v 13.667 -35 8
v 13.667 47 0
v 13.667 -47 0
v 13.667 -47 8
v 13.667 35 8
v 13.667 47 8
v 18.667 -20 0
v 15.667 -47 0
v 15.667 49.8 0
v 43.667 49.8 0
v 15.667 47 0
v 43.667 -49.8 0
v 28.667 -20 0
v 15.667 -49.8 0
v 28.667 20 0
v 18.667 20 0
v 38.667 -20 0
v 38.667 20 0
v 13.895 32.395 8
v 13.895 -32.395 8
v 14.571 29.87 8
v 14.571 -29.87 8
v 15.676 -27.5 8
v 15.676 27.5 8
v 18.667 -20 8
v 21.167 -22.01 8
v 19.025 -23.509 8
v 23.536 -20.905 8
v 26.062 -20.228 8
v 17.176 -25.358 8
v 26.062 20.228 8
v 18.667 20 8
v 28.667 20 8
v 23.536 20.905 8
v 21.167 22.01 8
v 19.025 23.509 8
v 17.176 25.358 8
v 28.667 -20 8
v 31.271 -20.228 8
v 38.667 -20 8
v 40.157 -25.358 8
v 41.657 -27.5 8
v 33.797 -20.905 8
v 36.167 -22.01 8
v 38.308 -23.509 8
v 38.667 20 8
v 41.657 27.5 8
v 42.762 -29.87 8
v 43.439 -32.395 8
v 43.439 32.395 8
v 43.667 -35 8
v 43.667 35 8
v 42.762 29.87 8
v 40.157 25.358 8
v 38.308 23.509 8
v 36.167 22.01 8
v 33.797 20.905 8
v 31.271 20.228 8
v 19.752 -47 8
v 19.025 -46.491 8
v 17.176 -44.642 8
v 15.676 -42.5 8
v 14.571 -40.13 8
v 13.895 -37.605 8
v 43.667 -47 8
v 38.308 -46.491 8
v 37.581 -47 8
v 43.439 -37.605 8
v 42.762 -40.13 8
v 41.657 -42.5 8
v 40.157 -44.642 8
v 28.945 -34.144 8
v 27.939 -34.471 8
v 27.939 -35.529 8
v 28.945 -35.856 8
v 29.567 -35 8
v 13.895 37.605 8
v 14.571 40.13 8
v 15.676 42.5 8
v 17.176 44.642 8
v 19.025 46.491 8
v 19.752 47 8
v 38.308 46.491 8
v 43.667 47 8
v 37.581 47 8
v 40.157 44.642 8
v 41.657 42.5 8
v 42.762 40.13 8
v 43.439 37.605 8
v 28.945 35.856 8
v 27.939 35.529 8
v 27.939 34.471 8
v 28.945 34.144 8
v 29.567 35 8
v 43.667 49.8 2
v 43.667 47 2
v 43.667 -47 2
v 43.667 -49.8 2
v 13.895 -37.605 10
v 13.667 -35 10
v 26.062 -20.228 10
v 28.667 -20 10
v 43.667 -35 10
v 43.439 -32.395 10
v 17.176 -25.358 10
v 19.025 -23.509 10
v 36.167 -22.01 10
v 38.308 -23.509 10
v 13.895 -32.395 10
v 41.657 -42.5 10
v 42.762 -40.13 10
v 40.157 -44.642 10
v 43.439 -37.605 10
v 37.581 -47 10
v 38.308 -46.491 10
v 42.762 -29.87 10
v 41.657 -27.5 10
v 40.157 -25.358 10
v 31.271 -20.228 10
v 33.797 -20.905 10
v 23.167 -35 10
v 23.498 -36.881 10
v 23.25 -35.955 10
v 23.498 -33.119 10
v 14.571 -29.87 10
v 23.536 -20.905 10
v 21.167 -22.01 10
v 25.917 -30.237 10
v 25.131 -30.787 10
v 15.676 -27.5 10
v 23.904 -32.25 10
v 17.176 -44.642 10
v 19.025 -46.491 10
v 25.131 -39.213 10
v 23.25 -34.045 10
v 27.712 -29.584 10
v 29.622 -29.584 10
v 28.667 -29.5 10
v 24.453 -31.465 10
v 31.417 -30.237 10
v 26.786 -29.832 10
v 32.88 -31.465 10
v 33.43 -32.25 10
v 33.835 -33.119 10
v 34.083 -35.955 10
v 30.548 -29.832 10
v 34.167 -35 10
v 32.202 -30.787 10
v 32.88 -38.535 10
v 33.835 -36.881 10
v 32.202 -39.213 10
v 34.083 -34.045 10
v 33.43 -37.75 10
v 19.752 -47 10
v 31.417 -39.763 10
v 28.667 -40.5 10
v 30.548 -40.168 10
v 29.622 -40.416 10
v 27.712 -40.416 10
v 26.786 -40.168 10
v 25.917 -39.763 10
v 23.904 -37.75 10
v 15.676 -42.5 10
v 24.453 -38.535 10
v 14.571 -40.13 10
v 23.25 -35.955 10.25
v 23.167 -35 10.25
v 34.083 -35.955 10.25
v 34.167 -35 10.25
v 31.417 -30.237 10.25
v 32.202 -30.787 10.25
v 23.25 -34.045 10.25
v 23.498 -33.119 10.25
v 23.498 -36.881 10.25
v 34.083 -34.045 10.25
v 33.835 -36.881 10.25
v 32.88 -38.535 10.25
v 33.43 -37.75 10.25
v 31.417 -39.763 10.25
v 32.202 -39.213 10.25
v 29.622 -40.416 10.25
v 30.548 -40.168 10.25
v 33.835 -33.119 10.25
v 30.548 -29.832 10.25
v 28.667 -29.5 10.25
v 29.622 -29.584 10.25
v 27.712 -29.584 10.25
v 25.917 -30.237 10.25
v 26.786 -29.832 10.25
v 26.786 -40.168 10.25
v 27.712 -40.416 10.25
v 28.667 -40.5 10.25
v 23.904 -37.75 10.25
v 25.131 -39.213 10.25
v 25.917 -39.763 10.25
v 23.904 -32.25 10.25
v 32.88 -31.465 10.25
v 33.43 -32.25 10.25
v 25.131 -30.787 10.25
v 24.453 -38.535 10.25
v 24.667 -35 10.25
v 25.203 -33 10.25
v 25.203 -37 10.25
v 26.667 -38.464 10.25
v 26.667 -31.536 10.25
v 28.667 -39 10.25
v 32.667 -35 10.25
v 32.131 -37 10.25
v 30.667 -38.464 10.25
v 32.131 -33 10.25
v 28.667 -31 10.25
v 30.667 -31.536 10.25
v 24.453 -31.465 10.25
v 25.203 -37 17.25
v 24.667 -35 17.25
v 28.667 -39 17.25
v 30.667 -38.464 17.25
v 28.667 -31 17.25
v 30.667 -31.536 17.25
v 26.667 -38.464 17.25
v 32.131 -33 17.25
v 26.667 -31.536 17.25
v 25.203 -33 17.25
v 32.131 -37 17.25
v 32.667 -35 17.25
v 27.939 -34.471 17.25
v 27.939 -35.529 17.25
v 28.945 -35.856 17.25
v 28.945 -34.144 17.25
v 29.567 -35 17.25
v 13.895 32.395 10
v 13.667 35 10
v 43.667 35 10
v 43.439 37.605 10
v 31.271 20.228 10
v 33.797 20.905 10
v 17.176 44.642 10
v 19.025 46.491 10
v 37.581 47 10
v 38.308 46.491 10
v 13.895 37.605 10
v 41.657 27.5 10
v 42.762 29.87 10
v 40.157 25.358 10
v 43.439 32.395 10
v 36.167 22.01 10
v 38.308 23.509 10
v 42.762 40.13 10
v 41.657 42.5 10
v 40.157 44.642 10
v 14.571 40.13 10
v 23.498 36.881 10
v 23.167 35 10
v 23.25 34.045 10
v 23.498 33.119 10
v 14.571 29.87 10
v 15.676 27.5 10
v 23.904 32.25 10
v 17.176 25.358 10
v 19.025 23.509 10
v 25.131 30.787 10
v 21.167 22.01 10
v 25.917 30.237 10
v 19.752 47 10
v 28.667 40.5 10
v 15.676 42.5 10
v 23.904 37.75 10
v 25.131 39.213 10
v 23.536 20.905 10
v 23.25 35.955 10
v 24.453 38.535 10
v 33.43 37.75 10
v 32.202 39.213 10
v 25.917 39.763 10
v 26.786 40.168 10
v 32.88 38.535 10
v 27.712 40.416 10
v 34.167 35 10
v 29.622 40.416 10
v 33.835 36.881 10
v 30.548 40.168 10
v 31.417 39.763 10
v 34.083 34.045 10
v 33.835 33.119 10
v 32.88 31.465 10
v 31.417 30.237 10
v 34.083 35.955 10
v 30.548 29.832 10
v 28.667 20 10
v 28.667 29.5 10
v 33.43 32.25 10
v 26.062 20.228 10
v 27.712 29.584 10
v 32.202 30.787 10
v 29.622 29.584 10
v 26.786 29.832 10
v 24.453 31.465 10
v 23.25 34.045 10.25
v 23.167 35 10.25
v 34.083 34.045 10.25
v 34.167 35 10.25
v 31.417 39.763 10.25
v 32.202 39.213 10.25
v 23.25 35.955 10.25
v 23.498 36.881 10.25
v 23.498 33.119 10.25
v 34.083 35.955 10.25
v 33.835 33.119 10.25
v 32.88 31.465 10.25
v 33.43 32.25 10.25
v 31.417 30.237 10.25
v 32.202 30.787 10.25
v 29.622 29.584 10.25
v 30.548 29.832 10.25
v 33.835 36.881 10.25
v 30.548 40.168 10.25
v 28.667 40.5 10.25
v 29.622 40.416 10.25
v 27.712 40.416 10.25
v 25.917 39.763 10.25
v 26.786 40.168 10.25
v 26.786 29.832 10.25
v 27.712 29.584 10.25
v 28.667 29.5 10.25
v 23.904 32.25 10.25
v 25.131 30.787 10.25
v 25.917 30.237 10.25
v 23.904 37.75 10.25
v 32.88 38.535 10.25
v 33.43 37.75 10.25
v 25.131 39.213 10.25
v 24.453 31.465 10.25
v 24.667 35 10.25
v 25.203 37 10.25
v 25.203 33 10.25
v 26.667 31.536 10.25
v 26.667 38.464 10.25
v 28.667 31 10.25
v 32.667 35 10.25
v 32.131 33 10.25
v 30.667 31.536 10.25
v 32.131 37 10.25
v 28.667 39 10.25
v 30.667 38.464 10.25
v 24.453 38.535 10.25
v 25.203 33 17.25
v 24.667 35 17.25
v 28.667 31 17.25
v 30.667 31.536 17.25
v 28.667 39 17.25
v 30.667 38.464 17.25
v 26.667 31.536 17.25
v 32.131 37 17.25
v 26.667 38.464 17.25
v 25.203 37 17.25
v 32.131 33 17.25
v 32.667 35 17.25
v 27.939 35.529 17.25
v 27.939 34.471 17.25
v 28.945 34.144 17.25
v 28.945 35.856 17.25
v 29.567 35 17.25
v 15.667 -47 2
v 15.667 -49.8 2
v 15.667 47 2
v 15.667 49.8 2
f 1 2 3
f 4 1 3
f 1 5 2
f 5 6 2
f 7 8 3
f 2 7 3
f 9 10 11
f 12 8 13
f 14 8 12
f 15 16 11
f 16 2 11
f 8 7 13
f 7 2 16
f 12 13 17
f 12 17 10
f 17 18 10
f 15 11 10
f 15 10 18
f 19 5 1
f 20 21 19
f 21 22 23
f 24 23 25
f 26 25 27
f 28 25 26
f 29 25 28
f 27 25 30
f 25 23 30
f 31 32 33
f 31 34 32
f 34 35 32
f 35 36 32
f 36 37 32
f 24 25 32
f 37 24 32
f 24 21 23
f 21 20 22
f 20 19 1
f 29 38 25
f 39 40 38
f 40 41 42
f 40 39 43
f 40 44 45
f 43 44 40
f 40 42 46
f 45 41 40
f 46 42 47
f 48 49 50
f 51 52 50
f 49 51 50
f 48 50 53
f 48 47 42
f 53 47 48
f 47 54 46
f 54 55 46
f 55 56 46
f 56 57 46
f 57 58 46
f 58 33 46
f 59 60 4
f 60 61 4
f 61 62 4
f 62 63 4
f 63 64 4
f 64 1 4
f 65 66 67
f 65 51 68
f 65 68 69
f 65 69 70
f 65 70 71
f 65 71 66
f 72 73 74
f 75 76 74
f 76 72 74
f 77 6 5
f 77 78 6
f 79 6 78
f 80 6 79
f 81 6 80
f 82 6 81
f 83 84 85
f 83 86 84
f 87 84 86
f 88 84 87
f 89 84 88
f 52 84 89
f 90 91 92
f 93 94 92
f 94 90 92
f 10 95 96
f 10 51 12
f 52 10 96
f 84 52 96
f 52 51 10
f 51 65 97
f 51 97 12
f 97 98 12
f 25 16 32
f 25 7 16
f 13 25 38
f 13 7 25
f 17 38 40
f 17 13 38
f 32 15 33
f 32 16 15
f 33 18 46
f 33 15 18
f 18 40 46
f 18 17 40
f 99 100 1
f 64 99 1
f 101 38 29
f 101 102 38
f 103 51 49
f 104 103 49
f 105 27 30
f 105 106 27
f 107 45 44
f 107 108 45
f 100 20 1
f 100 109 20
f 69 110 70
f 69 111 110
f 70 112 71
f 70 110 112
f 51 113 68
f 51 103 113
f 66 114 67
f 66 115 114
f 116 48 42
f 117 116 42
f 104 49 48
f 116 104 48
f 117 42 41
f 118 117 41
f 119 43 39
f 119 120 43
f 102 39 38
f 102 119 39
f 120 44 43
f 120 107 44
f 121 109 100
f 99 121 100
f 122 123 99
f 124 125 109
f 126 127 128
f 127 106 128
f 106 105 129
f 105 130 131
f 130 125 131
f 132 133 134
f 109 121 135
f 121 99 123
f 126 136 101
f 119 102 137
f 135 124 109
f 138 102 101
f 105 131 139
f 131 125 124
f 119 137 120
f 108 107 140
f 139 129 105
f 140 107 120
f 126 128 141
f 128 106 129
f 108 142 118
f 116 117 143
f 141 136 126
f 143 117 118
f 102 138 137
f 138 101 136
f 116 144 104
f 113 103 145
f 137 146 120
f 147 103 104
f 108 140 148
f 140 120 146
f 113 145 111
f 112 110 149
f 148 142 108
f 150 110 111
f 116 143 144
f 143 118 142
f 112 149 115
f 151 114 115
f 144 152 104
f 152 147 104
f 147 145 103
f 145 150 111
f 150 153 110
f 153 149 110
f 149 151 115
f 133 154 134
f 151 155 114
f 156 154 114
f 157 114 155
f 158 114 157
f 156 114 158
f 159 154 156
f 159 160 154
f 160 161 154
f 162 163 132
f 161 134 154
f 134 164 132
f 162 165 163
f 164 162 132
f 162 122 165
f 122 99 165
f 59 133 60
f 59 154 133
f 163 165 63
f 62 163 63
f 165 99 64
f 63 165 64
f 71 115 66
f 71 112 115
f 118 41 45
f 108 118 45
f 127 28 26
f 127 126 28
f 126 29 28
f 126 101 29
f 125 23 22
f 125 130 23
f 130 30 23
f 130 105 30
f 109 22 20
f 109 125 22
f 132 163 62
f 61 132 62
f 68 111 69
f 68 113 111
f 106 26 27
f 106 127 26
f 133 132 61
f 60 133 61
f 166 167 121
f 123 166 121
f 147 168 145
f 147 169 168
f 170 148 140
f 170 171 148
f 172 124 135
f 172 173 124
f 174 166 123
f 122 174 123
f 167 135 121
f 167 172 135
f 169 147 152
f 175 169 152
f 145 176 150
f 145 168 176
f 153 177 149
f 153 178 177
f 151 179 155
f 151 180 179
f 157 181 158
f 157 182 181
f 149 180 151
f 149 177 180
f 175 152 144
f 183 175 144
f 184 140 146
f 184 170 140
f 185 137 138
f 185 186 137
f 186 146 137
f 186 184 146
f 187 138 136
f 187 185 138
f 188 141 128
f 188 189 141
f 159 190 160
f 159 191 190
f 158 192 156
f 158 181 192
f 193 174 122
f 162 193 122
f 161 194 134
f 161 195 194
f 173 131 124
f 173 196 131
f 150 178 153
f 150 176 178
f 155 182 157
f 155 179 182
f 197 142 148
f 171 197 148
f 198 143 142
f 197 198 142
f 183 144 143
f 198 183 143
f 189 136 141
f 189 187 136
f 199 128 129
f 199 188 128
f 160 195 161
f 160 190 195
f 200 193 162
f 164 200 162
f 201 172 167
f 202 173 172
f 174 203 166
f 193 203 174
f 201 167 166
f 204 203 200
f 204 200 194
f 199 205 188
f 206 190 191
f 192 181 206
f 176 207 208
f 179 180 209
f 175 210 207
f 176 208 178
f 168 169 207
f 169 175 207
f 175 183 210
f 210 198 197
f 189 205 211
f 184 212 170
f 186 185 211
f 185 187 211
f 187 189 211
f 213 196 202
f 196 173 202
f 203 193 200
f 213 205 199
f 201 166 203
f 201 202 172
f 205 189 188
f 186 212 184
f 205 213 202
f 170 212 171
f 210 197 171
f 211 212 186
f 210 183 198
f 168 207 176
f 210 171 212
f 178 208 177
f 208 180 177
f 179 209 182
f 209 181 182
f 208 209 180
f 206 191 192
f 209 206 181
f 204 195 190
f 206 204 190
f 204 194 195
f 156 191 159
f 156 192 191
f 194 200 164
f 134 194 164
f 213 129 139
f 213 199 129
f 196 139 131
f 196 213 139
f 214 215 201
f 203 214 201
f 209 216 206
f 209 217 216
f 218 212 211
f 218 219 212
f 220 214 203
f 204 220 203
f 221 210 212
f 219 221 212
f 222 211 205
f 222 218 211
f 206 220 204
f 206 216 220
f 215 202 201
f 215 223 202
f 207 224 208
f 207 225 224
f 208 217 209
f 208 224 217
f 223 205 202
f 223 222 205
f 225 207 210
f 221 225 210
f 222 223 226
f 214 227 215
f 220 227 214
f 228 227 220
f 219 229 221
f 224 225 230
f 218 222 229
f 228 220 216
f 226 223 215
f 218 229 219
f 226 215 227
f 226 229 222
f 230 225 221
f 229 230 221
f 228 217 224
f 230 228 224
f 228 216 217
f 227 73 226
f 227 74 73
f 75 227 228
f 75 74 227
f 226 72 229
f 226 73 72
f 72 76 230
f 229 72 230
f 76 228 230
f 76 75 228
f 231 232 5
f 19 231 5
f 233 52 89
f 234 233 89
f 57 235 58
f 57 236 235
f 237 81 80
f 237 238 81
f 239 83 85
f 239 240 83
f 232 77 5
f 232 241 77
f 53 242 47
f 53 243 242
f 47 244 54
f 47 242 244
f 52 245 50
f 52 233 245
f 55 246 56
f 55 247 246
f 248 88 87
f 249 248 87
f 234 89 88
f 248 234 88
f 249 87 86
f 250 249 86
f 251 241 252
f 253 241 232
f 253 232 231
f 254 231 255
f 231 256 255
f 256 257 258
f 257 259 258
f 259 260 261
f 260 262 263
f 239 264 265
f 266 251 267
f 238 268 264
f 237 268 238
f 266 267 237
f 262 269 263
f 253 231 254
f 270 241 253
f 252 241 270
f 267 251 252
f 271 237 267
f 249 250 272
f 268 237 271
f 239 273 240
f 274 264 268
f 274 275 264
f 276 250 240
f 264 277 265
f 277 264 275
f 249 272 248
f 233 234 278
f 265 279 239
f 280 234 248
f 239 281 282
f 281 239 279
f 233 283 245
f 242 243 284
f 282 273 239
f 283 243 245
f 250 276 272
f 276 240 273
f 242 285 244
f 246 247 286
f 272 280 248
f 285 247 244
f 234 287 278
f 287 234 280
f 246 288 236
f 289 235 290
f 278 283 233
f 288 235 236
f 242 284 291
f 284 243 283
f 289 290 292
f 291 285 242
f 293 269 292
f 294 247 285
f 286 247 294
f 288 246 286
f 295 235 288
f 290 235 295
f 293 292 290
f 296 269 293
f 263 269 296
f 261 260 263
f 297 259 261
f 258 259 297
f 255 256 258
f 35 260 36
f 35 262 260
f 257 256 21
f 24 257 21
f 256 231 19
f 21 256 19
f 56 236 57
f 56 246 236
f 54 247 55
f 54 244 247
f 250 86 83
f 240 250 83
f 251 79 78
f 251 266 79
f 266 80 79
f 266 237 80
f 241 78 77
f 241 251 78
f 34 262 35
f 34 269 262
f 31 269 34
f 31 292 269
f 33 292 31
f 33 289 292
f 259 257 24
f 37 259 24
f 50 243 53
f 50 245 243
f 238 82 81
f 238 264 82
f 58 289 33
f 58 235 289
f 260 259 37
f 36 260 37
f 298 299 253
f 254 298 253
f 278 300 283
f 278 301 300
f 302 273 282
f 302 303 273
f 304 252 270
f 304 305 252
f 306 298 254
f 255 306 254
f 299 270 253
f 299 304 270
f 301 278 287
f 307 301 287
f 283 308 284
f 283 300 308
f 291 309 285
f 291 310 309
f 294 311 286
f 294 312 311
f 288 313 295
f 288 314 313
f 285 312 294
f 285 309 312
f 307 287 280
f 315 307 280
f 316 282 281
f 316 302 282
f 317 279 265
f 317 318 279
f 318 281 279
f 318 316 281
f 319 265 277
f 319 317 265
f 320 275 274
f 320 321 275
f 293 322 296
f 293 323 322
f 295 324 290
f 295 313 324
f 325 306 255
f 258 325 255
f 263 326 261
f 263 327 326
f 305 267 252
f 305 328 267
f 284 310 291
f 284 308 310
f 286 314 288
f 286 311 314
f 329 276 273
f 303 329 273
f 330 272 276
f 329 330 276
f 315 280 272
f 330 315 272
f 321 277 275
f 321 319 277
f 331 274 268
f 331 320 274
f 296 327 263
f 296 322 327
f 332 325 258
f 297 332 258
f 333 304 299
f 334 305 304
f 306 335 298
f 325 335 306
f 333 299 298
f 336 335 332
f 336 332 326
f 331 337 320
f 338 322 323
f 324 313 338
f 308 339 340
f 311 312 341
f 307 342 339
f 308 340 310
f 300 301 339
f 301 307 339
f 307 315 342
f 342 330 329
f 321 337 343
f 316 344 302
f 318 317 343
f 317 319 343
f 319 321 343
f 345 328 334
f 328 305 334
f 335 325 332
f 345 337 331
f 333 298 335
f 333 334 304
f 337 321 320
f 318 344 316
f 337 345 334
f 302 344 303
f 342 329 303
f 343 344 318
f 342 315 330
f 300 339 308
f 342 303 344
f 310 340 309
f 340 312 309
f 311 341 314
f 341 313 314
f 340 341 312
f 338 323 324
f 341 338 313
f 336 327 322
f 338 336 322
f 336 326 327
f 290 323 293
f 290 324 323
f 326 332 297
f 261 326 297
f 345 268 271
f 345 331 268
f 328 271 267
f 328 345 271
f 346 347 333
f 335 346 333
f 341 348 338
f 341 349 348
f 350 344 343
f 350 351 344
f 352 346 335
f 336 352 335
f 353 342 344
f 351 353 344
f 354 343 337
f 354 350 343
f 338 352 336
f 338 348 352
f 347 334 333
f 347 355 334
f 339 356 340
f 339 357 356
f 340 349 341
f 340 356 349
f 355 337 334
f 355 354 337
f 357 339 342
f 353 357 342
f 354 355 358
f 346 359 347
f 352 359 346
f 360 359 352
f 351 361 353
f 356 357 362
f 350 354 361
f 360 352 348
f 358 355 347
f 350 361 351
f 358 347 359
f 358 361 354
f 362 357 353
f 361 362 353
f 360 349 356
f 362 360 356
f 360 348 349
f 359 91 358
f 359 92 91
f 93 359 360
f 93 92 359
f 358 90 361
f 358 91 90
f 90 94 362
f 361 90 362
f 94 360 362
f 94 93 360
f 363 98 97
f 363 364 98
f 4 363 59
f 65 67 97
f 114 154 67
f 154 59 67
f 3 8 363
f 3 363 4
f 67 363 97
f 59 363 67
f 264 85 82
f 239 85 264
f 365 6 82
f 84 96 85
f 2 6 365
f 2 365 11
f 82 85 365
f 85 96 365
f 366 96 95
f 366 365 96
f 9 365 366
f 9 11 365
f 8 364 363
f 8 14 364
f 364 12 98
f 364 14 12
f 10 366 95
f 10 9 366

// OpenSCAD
// Desktop ball bearing spool holder
// Written by Joe Cabana  3/1/2014
// Added bigger spool sizes 4/8/2014
// You are free to use and/or modify this software for non-comercial
// uses as long as you retain this message. Thanks.

// Print at .25 layer height, 25% infill, 2 extra shells

DoArms = 0;  // Set to non-zero to draw the outer bracket support arms, 0 to draw the rest of the stuff

Show = 0;  // Set to non-zero to show bearings

// Spool dimensions
SpoolCnt = 11;  // Number of spool sizes
SpoolWid = [85,81,77,73,69,65,61,57,53,49,45];  // Width of filament spool the first one must be the biggest, and the last one the smallest.
SpoolSpace = 1;  // Extra space on each side of the spool

// Mounting Latch dimensions
LatchWid = 45;  // Width of latching section

// Bearing mount dimensions
SplShdDia = 30;  // Diameter of spool guiding shoulder
SplShdThk = 2;  // Thickness of spool guiding shoulder
BearShdDia = 11;  // Diameter of bearing mount shoulder
BearShdThk = .25;  // Thickness of bearing mount shoulder
BearInDia = 8;  // Diameter of bearing center hole
BearOutDia = 22;  // Outer diameter of bearing
BearThk = 7;  // Thickness of the bearing
BearWashThk = 2.5;  // Thickness of bearing mounting washers

// Bracket dimensions
LatchOff = 0;  // Offset into bracket of latch slot
InBrkThk = 12;  // Thickness of bracket on back of replicator
OutBrkThk = 8;  // Thickness of bracket on outside
BrkWid = 100; // Width of bracket on back of replicator
InBrkHgt = 90;  // Height of bracket on back or replicator
OutBrkHgt = 30;  // Height of outside bracket
SlotDepth = 3; // Depth of slots to hold outer bracket
SlotWidth = 2; // Width of slots to hold outer bracket
SlotClear = .2;  // Clearance for outer bracket slots
ArmWid = (2 * SplShdThk) + (2 * OutBrkThk) + InBrkThk + SpoolWid[0] + SpoolSpace + SlotWidth + 1;  // Width of outer bracket arms
ArmThk = 3;  // Thickness of outer bracket arms

// Screw hole sizes
ScrewDia = 1.8; // Diameter of screw hole
ScrewClear = 2.3; // Diameter of screw clearance hole


	translate([-80,-50,0])
	
		// Outside bracket
		translate([InBrkHgt/2+BrkWid/1.5-18,0,0]) OutBracket(Show);
	
	
		


// Routine to draw the outer bracket mounting arm
module Arm(Invert = 0)
{
	SlotBlockWid = SpoolWid[0]-SpoolWid[SpoolCnt-1]+(3*SlotWidth) + 1.5;  // Width of block to hold slots

	difference()
	{
		// Arm
		union()
		{
			cube([OutBrkHgt,ArmWid,ArmThk]);  // Arm
			cube([OutBrkHgt*2,InBrkThk,ArmThk]);  // Extra bracing
			if (Invert)
				translate([0,ArmWid-SlotBlockWid-OutBrkThk-.5,-(SlotDepth-SlotClear)])
					cube([OutBrkHgt,SlotBlockWid,ArmThk+SlotDepth-SlotClear]);  // Outer bracket support
			else
				translate([0,ArmWid-SlotBlockWid-OutBrkThk-.5,0])
					cube([OutBrkHgt,SlotBlockWid,ArmThk+SlotDepth-SlotClear]);  // Outer bracket support
		}

		// Outer bracket slots
		for (cnt = [0 : (SpoolCnt-1)])
			if (Invert)
				translate([SlotWidth-SlotClear,(2*SplShdThk)+OutBrkThk+InBrkThk+SpoolWid[cnt]+SpoolSpace-(SlotWidth+(2*SlotClear)),-(ArmThk+1)])
					cube([OutBrkHgt,SlotWidth+(2*SlotClear),SlotDepth+1]);  // Outer bracket support
			else
				translate([SlotWidth-SlotClear,(2*SplShdThk)+OutBrkThk+InBrkThk+SpoolWid[cnt]+SpoolSpace-(SlotWidth+(2*SlotClear)),ArmThk])
					cube([OutBrkHgt,SlotWidth+(2*SlotClear),SlotDepth+1]);  // Outer bracket support

		// Holes
		translate([OutBrkHgt/2,ArmWid/4,-1])
			cylinder(ArmThk+2,OutBrkHgt/4,OutBrkHgt/4,$fn=36);
		translate([OutBrkHgt/2,ArmWid/2.2,-1])
			cylinder(ArmThk+2,OutBrkHgt/4,OutBrkHgt/4,$fn=36);
//		translate([OutBrkHgt/2,ArmWid/1.5,-1])
//			cylinder(ArmThk+2,OutBrkHgt/4,OutBrkHgt/4,$fn=36);

		// Screw holes
		translate([5,InBrkThk/2,-1])
			cylinder(ArmThk+2,ScrewClear/2,ScrewClear/2,$fn=12);
		translate([OutBrkHgt,InBrkThk/2,-1])
			cylinder(ArmThk+2,ScrewClear/2,ScrewClear/2,$fn=12);
		translate([2*OutBrkHgt-5,InBrkThk/2,-1])
			cylinder(ArmThk+2,ScrewClear/2,ScrewClear/2,$fn=12);
		translate([5,ArmWid-OutBrkThk/2,-1])
			cylinder(ArmThk+2,ScrewClear/2,ScrewClear/2,$fn=12);
		translate([OutBrkHgt-5,ArmWid-OutBrkThk/2,-1])
			cylinder(ArmThk+2,ScrewClear/2,ScrewClear/2,$fn=12);
	}
}

// Routine to draw the outside bracket
module OutBracket(Show = 0)
{
	difference()
	{
		union()
		{
			difference()
			{
				// Outside plate
				cube([OutBrkHgt,BrkWid,OutBrkThk]);
		
				// Hole in center
				translate([5,SplShdDia,-1])
					cube([OutBrkHgt-10,BrkWid-2*SplShdDia,OutBrkThk+2]);
			}
				// Bearing mounts
			translate([OutBrkHgt-SplShdDia/2,SplShdDia/2,0])
				BearingMnt(Show,OutBrkThk);
			translate([OutBrkHgt-SplShdDia/2,BrkWid-SplShdDia/2,0])
				BearingMnt(Show,OutBrkThk);
		}
		
		// Cut down for slots
		translate([-1,0,SlotWidth])
			cube([OutBrkHgt+2,SlotDepth,OutBrkThk+SplShdThk]);
		translate([-1,BrkWid-SlotDepth,SlotWidth])
			cube([OutBrkHgt+2,SlotDepth,OutBrkThk+SplShdThk]);
		translate([-1,BrkWid-SlotDepth,-1])
			cube([SlotWidth+1,SlotDepth,OutBrkThk+SplShdThk+2]);
		translate([-1,0,-1])
			cube([SlotWidth+1,SlotDepth,OutBrkThk+SplShdThk+2]);

		// Trim for clearance
		translate([-1,SlotClear-SlotDepth,-1])
			cube([OutBrkHgt+1,SlotDepth,OutBrkThk+SplShdThk+2]);
		translate([-1,BrkWid-SlotClear,-1])
			cube([OutBrkHgt+1,SlotDepth,OutBrkThk+SplShdThk+2]);
	}
}

// Routine to draw the end plate
module EndPlate()
{
	difference()
	{
		// Outside plate
		cube([OutBrkHgt,BrkWid,OutBrkThk]);

		// Holes
		translate([OutBrkHgt/2,BrkWid/4,-1])
			cylinder(OutBrkThk+2,OutBrkHgt/3,OutBrkHgt/3,$fn=36);
		translate([OutBrkHgt/2,BrkWid/2,-1])
			cylinder(OutBrkThk+2,OutBrkHgt/3,OutBrkHgt/3,$fn=36);
		translate([OutBrkHgt/2,BrkWid-BrkWid/4,-1])
			cylinder(OutBrkThk+2,OutBrkHgt/3,OutBrkHgt/3,$fn=36);

		// Screw holes
		translate([5,0,OutBrkThk/2])
			rotate([90,0,0])
				cylinder(20,ScrewDia/2,ScrewDia/2,true,$fn=8);
		translate([OutBrkHgt-5,0,OutBrkThk/2])
			rotate([90,0,0])
				cylinder(20,ScrewDia/2,ScrewDia/2,true,$fn=8);
		translate([5,BrkWid,OutBrkThk/2])
			rotate([90,0,0])
				cylinder(20,ScrewDia/2,ScrewDia/2,true,$fn=8);
		translate([OutBrkHgt-5,BrkWid,OutBrkThk/2])
			rotate([90,0,0])
				cylinder(20,ScrewDia/2,ScrewDia/2,true,$fn=8);
	}
}

// Routine to draw the bearing washer
module BearWash()
{
	difference()
	{
		// Washer
		cylinder(BearWashThk,BearShdDia/2,BearShdDia/2,$fn=36);
		// Hole for screw
		cylinder(BearWashThk*3,ScrewClear/2,ScrewClear/2,true,$fn=12);
	}
}

// Routine to draw back mounting bracket
module BackBracket()
{
	difference()
	{
		// Back plate
		cube([InBrkHgt,BrkWid,InBrkThk]);


		// Chop top corners
		rotate([0,0,45])
			cube([BrkWid/3,BrkWid/3,InBrkHgt*3],true);
		translate([0,BrkWid,0])
			rotate([0,0,45])
				cube([BrkWid/3,BrkWid/3,InBrkHgt*3],true);

		// Hole in center
		translate([LatchOff+10,5,-1])
			difference()
			{
				cube([InBrkHgt-(LatchOff+10)-SplShdDia/4,BrkWid-10,InBrkThk+2]);
				rotate([0,0,45])
					cube([LatchWid/2,LatchWid/2,InBrkHgt*3],true);
				translate([0,BrkWid-10,0])
					rotate([0,0,45])
						cube([LatchWid/2,LatchWid/2,InBrkHgt*3],true);
			}

		// Screw holes
		translate([InBrkHgt-5,0,InBrkThk/2])
			rotate([90,0,0])
				cylinder(20,ScrewDia/2,ScrewDia/2,true,$fn=8);
		translate([InBrkHgt-OutBrkHgt,0,InBrkThk/2])
			rotate([90,0,0])
				cylinder(20,ScrewDia/2,ScrewDia/2,true,$fn=8);
		translate([InBrkHgt-(2*OutBrkHgt-5),0,InBrkThk/2])
			rotate([90,0,0])
				cylinder(20,ScrewDia/2,ScrewDia/2,true,$fn=8);
		translate([InBrkHgt-5,BrkWid,InBrkThk/2])
			rotate([90,0,0])
				cylinder(20,ScrewDia/2,ScrewDia/2,true,$fn=8);
		translate([InBrkHgt-OutBrkHgt,BrkWid,InBrkThk/2])
			rotate([90,0,0])
				cylinder(20,ScrewDia/2,ScrewDia/2,true,$fn=8);
		translate([InBrkHgt-(2*OutBrkHgt-5),BrkWid,InBrkThk/2])
			rotate([90,0,0])
				cylinder(20,ScrewDia/2,ScrewDia/2,true,$fn=8);
	}
}

// Routine to draw he bearing mount
module BearingMnt(Show = 0,BrkThk = 1)
{
	difference()
	{
		union()
		{
			// Shoulder to keep spool off of bracket
			cylinder(BrkThk+SplShdThk,SplShdDia/2,SplShdDia/2,$fn=36);
			// Shoulder to keep bearing from rubbing
			cylinder(BrkThk+BearShdThk+SplShdThk,BearShdDia/2,BearShdDia/2,$fn=36);
			// Mounting shaft
			cylinder(BrkThk+BearThk+BearShdThk+SplShdThk,BearInDia/2,BearInDia/2,$fn=12);
		}

		// Screw hole
		cylinder(50,ScrewDia/2,ScrewDia/2,true,$fn8);
	}

	if (Show)  // Show the bearing if needed
	{
		translate([0,0,BearShdThk+SplShdThk])
			color("Blue",.5)
				difference()
				{
					// Bearing minus the hole
					cylinder(BrkThk+BearThk,BearOutDia/2,BearOutDia/2,$fn=36);
					translate([0,0,-1])
						cylinder(BearThk+2,BearInDia/2,BearInDia/2,$fn=36);
				}
	}
}
